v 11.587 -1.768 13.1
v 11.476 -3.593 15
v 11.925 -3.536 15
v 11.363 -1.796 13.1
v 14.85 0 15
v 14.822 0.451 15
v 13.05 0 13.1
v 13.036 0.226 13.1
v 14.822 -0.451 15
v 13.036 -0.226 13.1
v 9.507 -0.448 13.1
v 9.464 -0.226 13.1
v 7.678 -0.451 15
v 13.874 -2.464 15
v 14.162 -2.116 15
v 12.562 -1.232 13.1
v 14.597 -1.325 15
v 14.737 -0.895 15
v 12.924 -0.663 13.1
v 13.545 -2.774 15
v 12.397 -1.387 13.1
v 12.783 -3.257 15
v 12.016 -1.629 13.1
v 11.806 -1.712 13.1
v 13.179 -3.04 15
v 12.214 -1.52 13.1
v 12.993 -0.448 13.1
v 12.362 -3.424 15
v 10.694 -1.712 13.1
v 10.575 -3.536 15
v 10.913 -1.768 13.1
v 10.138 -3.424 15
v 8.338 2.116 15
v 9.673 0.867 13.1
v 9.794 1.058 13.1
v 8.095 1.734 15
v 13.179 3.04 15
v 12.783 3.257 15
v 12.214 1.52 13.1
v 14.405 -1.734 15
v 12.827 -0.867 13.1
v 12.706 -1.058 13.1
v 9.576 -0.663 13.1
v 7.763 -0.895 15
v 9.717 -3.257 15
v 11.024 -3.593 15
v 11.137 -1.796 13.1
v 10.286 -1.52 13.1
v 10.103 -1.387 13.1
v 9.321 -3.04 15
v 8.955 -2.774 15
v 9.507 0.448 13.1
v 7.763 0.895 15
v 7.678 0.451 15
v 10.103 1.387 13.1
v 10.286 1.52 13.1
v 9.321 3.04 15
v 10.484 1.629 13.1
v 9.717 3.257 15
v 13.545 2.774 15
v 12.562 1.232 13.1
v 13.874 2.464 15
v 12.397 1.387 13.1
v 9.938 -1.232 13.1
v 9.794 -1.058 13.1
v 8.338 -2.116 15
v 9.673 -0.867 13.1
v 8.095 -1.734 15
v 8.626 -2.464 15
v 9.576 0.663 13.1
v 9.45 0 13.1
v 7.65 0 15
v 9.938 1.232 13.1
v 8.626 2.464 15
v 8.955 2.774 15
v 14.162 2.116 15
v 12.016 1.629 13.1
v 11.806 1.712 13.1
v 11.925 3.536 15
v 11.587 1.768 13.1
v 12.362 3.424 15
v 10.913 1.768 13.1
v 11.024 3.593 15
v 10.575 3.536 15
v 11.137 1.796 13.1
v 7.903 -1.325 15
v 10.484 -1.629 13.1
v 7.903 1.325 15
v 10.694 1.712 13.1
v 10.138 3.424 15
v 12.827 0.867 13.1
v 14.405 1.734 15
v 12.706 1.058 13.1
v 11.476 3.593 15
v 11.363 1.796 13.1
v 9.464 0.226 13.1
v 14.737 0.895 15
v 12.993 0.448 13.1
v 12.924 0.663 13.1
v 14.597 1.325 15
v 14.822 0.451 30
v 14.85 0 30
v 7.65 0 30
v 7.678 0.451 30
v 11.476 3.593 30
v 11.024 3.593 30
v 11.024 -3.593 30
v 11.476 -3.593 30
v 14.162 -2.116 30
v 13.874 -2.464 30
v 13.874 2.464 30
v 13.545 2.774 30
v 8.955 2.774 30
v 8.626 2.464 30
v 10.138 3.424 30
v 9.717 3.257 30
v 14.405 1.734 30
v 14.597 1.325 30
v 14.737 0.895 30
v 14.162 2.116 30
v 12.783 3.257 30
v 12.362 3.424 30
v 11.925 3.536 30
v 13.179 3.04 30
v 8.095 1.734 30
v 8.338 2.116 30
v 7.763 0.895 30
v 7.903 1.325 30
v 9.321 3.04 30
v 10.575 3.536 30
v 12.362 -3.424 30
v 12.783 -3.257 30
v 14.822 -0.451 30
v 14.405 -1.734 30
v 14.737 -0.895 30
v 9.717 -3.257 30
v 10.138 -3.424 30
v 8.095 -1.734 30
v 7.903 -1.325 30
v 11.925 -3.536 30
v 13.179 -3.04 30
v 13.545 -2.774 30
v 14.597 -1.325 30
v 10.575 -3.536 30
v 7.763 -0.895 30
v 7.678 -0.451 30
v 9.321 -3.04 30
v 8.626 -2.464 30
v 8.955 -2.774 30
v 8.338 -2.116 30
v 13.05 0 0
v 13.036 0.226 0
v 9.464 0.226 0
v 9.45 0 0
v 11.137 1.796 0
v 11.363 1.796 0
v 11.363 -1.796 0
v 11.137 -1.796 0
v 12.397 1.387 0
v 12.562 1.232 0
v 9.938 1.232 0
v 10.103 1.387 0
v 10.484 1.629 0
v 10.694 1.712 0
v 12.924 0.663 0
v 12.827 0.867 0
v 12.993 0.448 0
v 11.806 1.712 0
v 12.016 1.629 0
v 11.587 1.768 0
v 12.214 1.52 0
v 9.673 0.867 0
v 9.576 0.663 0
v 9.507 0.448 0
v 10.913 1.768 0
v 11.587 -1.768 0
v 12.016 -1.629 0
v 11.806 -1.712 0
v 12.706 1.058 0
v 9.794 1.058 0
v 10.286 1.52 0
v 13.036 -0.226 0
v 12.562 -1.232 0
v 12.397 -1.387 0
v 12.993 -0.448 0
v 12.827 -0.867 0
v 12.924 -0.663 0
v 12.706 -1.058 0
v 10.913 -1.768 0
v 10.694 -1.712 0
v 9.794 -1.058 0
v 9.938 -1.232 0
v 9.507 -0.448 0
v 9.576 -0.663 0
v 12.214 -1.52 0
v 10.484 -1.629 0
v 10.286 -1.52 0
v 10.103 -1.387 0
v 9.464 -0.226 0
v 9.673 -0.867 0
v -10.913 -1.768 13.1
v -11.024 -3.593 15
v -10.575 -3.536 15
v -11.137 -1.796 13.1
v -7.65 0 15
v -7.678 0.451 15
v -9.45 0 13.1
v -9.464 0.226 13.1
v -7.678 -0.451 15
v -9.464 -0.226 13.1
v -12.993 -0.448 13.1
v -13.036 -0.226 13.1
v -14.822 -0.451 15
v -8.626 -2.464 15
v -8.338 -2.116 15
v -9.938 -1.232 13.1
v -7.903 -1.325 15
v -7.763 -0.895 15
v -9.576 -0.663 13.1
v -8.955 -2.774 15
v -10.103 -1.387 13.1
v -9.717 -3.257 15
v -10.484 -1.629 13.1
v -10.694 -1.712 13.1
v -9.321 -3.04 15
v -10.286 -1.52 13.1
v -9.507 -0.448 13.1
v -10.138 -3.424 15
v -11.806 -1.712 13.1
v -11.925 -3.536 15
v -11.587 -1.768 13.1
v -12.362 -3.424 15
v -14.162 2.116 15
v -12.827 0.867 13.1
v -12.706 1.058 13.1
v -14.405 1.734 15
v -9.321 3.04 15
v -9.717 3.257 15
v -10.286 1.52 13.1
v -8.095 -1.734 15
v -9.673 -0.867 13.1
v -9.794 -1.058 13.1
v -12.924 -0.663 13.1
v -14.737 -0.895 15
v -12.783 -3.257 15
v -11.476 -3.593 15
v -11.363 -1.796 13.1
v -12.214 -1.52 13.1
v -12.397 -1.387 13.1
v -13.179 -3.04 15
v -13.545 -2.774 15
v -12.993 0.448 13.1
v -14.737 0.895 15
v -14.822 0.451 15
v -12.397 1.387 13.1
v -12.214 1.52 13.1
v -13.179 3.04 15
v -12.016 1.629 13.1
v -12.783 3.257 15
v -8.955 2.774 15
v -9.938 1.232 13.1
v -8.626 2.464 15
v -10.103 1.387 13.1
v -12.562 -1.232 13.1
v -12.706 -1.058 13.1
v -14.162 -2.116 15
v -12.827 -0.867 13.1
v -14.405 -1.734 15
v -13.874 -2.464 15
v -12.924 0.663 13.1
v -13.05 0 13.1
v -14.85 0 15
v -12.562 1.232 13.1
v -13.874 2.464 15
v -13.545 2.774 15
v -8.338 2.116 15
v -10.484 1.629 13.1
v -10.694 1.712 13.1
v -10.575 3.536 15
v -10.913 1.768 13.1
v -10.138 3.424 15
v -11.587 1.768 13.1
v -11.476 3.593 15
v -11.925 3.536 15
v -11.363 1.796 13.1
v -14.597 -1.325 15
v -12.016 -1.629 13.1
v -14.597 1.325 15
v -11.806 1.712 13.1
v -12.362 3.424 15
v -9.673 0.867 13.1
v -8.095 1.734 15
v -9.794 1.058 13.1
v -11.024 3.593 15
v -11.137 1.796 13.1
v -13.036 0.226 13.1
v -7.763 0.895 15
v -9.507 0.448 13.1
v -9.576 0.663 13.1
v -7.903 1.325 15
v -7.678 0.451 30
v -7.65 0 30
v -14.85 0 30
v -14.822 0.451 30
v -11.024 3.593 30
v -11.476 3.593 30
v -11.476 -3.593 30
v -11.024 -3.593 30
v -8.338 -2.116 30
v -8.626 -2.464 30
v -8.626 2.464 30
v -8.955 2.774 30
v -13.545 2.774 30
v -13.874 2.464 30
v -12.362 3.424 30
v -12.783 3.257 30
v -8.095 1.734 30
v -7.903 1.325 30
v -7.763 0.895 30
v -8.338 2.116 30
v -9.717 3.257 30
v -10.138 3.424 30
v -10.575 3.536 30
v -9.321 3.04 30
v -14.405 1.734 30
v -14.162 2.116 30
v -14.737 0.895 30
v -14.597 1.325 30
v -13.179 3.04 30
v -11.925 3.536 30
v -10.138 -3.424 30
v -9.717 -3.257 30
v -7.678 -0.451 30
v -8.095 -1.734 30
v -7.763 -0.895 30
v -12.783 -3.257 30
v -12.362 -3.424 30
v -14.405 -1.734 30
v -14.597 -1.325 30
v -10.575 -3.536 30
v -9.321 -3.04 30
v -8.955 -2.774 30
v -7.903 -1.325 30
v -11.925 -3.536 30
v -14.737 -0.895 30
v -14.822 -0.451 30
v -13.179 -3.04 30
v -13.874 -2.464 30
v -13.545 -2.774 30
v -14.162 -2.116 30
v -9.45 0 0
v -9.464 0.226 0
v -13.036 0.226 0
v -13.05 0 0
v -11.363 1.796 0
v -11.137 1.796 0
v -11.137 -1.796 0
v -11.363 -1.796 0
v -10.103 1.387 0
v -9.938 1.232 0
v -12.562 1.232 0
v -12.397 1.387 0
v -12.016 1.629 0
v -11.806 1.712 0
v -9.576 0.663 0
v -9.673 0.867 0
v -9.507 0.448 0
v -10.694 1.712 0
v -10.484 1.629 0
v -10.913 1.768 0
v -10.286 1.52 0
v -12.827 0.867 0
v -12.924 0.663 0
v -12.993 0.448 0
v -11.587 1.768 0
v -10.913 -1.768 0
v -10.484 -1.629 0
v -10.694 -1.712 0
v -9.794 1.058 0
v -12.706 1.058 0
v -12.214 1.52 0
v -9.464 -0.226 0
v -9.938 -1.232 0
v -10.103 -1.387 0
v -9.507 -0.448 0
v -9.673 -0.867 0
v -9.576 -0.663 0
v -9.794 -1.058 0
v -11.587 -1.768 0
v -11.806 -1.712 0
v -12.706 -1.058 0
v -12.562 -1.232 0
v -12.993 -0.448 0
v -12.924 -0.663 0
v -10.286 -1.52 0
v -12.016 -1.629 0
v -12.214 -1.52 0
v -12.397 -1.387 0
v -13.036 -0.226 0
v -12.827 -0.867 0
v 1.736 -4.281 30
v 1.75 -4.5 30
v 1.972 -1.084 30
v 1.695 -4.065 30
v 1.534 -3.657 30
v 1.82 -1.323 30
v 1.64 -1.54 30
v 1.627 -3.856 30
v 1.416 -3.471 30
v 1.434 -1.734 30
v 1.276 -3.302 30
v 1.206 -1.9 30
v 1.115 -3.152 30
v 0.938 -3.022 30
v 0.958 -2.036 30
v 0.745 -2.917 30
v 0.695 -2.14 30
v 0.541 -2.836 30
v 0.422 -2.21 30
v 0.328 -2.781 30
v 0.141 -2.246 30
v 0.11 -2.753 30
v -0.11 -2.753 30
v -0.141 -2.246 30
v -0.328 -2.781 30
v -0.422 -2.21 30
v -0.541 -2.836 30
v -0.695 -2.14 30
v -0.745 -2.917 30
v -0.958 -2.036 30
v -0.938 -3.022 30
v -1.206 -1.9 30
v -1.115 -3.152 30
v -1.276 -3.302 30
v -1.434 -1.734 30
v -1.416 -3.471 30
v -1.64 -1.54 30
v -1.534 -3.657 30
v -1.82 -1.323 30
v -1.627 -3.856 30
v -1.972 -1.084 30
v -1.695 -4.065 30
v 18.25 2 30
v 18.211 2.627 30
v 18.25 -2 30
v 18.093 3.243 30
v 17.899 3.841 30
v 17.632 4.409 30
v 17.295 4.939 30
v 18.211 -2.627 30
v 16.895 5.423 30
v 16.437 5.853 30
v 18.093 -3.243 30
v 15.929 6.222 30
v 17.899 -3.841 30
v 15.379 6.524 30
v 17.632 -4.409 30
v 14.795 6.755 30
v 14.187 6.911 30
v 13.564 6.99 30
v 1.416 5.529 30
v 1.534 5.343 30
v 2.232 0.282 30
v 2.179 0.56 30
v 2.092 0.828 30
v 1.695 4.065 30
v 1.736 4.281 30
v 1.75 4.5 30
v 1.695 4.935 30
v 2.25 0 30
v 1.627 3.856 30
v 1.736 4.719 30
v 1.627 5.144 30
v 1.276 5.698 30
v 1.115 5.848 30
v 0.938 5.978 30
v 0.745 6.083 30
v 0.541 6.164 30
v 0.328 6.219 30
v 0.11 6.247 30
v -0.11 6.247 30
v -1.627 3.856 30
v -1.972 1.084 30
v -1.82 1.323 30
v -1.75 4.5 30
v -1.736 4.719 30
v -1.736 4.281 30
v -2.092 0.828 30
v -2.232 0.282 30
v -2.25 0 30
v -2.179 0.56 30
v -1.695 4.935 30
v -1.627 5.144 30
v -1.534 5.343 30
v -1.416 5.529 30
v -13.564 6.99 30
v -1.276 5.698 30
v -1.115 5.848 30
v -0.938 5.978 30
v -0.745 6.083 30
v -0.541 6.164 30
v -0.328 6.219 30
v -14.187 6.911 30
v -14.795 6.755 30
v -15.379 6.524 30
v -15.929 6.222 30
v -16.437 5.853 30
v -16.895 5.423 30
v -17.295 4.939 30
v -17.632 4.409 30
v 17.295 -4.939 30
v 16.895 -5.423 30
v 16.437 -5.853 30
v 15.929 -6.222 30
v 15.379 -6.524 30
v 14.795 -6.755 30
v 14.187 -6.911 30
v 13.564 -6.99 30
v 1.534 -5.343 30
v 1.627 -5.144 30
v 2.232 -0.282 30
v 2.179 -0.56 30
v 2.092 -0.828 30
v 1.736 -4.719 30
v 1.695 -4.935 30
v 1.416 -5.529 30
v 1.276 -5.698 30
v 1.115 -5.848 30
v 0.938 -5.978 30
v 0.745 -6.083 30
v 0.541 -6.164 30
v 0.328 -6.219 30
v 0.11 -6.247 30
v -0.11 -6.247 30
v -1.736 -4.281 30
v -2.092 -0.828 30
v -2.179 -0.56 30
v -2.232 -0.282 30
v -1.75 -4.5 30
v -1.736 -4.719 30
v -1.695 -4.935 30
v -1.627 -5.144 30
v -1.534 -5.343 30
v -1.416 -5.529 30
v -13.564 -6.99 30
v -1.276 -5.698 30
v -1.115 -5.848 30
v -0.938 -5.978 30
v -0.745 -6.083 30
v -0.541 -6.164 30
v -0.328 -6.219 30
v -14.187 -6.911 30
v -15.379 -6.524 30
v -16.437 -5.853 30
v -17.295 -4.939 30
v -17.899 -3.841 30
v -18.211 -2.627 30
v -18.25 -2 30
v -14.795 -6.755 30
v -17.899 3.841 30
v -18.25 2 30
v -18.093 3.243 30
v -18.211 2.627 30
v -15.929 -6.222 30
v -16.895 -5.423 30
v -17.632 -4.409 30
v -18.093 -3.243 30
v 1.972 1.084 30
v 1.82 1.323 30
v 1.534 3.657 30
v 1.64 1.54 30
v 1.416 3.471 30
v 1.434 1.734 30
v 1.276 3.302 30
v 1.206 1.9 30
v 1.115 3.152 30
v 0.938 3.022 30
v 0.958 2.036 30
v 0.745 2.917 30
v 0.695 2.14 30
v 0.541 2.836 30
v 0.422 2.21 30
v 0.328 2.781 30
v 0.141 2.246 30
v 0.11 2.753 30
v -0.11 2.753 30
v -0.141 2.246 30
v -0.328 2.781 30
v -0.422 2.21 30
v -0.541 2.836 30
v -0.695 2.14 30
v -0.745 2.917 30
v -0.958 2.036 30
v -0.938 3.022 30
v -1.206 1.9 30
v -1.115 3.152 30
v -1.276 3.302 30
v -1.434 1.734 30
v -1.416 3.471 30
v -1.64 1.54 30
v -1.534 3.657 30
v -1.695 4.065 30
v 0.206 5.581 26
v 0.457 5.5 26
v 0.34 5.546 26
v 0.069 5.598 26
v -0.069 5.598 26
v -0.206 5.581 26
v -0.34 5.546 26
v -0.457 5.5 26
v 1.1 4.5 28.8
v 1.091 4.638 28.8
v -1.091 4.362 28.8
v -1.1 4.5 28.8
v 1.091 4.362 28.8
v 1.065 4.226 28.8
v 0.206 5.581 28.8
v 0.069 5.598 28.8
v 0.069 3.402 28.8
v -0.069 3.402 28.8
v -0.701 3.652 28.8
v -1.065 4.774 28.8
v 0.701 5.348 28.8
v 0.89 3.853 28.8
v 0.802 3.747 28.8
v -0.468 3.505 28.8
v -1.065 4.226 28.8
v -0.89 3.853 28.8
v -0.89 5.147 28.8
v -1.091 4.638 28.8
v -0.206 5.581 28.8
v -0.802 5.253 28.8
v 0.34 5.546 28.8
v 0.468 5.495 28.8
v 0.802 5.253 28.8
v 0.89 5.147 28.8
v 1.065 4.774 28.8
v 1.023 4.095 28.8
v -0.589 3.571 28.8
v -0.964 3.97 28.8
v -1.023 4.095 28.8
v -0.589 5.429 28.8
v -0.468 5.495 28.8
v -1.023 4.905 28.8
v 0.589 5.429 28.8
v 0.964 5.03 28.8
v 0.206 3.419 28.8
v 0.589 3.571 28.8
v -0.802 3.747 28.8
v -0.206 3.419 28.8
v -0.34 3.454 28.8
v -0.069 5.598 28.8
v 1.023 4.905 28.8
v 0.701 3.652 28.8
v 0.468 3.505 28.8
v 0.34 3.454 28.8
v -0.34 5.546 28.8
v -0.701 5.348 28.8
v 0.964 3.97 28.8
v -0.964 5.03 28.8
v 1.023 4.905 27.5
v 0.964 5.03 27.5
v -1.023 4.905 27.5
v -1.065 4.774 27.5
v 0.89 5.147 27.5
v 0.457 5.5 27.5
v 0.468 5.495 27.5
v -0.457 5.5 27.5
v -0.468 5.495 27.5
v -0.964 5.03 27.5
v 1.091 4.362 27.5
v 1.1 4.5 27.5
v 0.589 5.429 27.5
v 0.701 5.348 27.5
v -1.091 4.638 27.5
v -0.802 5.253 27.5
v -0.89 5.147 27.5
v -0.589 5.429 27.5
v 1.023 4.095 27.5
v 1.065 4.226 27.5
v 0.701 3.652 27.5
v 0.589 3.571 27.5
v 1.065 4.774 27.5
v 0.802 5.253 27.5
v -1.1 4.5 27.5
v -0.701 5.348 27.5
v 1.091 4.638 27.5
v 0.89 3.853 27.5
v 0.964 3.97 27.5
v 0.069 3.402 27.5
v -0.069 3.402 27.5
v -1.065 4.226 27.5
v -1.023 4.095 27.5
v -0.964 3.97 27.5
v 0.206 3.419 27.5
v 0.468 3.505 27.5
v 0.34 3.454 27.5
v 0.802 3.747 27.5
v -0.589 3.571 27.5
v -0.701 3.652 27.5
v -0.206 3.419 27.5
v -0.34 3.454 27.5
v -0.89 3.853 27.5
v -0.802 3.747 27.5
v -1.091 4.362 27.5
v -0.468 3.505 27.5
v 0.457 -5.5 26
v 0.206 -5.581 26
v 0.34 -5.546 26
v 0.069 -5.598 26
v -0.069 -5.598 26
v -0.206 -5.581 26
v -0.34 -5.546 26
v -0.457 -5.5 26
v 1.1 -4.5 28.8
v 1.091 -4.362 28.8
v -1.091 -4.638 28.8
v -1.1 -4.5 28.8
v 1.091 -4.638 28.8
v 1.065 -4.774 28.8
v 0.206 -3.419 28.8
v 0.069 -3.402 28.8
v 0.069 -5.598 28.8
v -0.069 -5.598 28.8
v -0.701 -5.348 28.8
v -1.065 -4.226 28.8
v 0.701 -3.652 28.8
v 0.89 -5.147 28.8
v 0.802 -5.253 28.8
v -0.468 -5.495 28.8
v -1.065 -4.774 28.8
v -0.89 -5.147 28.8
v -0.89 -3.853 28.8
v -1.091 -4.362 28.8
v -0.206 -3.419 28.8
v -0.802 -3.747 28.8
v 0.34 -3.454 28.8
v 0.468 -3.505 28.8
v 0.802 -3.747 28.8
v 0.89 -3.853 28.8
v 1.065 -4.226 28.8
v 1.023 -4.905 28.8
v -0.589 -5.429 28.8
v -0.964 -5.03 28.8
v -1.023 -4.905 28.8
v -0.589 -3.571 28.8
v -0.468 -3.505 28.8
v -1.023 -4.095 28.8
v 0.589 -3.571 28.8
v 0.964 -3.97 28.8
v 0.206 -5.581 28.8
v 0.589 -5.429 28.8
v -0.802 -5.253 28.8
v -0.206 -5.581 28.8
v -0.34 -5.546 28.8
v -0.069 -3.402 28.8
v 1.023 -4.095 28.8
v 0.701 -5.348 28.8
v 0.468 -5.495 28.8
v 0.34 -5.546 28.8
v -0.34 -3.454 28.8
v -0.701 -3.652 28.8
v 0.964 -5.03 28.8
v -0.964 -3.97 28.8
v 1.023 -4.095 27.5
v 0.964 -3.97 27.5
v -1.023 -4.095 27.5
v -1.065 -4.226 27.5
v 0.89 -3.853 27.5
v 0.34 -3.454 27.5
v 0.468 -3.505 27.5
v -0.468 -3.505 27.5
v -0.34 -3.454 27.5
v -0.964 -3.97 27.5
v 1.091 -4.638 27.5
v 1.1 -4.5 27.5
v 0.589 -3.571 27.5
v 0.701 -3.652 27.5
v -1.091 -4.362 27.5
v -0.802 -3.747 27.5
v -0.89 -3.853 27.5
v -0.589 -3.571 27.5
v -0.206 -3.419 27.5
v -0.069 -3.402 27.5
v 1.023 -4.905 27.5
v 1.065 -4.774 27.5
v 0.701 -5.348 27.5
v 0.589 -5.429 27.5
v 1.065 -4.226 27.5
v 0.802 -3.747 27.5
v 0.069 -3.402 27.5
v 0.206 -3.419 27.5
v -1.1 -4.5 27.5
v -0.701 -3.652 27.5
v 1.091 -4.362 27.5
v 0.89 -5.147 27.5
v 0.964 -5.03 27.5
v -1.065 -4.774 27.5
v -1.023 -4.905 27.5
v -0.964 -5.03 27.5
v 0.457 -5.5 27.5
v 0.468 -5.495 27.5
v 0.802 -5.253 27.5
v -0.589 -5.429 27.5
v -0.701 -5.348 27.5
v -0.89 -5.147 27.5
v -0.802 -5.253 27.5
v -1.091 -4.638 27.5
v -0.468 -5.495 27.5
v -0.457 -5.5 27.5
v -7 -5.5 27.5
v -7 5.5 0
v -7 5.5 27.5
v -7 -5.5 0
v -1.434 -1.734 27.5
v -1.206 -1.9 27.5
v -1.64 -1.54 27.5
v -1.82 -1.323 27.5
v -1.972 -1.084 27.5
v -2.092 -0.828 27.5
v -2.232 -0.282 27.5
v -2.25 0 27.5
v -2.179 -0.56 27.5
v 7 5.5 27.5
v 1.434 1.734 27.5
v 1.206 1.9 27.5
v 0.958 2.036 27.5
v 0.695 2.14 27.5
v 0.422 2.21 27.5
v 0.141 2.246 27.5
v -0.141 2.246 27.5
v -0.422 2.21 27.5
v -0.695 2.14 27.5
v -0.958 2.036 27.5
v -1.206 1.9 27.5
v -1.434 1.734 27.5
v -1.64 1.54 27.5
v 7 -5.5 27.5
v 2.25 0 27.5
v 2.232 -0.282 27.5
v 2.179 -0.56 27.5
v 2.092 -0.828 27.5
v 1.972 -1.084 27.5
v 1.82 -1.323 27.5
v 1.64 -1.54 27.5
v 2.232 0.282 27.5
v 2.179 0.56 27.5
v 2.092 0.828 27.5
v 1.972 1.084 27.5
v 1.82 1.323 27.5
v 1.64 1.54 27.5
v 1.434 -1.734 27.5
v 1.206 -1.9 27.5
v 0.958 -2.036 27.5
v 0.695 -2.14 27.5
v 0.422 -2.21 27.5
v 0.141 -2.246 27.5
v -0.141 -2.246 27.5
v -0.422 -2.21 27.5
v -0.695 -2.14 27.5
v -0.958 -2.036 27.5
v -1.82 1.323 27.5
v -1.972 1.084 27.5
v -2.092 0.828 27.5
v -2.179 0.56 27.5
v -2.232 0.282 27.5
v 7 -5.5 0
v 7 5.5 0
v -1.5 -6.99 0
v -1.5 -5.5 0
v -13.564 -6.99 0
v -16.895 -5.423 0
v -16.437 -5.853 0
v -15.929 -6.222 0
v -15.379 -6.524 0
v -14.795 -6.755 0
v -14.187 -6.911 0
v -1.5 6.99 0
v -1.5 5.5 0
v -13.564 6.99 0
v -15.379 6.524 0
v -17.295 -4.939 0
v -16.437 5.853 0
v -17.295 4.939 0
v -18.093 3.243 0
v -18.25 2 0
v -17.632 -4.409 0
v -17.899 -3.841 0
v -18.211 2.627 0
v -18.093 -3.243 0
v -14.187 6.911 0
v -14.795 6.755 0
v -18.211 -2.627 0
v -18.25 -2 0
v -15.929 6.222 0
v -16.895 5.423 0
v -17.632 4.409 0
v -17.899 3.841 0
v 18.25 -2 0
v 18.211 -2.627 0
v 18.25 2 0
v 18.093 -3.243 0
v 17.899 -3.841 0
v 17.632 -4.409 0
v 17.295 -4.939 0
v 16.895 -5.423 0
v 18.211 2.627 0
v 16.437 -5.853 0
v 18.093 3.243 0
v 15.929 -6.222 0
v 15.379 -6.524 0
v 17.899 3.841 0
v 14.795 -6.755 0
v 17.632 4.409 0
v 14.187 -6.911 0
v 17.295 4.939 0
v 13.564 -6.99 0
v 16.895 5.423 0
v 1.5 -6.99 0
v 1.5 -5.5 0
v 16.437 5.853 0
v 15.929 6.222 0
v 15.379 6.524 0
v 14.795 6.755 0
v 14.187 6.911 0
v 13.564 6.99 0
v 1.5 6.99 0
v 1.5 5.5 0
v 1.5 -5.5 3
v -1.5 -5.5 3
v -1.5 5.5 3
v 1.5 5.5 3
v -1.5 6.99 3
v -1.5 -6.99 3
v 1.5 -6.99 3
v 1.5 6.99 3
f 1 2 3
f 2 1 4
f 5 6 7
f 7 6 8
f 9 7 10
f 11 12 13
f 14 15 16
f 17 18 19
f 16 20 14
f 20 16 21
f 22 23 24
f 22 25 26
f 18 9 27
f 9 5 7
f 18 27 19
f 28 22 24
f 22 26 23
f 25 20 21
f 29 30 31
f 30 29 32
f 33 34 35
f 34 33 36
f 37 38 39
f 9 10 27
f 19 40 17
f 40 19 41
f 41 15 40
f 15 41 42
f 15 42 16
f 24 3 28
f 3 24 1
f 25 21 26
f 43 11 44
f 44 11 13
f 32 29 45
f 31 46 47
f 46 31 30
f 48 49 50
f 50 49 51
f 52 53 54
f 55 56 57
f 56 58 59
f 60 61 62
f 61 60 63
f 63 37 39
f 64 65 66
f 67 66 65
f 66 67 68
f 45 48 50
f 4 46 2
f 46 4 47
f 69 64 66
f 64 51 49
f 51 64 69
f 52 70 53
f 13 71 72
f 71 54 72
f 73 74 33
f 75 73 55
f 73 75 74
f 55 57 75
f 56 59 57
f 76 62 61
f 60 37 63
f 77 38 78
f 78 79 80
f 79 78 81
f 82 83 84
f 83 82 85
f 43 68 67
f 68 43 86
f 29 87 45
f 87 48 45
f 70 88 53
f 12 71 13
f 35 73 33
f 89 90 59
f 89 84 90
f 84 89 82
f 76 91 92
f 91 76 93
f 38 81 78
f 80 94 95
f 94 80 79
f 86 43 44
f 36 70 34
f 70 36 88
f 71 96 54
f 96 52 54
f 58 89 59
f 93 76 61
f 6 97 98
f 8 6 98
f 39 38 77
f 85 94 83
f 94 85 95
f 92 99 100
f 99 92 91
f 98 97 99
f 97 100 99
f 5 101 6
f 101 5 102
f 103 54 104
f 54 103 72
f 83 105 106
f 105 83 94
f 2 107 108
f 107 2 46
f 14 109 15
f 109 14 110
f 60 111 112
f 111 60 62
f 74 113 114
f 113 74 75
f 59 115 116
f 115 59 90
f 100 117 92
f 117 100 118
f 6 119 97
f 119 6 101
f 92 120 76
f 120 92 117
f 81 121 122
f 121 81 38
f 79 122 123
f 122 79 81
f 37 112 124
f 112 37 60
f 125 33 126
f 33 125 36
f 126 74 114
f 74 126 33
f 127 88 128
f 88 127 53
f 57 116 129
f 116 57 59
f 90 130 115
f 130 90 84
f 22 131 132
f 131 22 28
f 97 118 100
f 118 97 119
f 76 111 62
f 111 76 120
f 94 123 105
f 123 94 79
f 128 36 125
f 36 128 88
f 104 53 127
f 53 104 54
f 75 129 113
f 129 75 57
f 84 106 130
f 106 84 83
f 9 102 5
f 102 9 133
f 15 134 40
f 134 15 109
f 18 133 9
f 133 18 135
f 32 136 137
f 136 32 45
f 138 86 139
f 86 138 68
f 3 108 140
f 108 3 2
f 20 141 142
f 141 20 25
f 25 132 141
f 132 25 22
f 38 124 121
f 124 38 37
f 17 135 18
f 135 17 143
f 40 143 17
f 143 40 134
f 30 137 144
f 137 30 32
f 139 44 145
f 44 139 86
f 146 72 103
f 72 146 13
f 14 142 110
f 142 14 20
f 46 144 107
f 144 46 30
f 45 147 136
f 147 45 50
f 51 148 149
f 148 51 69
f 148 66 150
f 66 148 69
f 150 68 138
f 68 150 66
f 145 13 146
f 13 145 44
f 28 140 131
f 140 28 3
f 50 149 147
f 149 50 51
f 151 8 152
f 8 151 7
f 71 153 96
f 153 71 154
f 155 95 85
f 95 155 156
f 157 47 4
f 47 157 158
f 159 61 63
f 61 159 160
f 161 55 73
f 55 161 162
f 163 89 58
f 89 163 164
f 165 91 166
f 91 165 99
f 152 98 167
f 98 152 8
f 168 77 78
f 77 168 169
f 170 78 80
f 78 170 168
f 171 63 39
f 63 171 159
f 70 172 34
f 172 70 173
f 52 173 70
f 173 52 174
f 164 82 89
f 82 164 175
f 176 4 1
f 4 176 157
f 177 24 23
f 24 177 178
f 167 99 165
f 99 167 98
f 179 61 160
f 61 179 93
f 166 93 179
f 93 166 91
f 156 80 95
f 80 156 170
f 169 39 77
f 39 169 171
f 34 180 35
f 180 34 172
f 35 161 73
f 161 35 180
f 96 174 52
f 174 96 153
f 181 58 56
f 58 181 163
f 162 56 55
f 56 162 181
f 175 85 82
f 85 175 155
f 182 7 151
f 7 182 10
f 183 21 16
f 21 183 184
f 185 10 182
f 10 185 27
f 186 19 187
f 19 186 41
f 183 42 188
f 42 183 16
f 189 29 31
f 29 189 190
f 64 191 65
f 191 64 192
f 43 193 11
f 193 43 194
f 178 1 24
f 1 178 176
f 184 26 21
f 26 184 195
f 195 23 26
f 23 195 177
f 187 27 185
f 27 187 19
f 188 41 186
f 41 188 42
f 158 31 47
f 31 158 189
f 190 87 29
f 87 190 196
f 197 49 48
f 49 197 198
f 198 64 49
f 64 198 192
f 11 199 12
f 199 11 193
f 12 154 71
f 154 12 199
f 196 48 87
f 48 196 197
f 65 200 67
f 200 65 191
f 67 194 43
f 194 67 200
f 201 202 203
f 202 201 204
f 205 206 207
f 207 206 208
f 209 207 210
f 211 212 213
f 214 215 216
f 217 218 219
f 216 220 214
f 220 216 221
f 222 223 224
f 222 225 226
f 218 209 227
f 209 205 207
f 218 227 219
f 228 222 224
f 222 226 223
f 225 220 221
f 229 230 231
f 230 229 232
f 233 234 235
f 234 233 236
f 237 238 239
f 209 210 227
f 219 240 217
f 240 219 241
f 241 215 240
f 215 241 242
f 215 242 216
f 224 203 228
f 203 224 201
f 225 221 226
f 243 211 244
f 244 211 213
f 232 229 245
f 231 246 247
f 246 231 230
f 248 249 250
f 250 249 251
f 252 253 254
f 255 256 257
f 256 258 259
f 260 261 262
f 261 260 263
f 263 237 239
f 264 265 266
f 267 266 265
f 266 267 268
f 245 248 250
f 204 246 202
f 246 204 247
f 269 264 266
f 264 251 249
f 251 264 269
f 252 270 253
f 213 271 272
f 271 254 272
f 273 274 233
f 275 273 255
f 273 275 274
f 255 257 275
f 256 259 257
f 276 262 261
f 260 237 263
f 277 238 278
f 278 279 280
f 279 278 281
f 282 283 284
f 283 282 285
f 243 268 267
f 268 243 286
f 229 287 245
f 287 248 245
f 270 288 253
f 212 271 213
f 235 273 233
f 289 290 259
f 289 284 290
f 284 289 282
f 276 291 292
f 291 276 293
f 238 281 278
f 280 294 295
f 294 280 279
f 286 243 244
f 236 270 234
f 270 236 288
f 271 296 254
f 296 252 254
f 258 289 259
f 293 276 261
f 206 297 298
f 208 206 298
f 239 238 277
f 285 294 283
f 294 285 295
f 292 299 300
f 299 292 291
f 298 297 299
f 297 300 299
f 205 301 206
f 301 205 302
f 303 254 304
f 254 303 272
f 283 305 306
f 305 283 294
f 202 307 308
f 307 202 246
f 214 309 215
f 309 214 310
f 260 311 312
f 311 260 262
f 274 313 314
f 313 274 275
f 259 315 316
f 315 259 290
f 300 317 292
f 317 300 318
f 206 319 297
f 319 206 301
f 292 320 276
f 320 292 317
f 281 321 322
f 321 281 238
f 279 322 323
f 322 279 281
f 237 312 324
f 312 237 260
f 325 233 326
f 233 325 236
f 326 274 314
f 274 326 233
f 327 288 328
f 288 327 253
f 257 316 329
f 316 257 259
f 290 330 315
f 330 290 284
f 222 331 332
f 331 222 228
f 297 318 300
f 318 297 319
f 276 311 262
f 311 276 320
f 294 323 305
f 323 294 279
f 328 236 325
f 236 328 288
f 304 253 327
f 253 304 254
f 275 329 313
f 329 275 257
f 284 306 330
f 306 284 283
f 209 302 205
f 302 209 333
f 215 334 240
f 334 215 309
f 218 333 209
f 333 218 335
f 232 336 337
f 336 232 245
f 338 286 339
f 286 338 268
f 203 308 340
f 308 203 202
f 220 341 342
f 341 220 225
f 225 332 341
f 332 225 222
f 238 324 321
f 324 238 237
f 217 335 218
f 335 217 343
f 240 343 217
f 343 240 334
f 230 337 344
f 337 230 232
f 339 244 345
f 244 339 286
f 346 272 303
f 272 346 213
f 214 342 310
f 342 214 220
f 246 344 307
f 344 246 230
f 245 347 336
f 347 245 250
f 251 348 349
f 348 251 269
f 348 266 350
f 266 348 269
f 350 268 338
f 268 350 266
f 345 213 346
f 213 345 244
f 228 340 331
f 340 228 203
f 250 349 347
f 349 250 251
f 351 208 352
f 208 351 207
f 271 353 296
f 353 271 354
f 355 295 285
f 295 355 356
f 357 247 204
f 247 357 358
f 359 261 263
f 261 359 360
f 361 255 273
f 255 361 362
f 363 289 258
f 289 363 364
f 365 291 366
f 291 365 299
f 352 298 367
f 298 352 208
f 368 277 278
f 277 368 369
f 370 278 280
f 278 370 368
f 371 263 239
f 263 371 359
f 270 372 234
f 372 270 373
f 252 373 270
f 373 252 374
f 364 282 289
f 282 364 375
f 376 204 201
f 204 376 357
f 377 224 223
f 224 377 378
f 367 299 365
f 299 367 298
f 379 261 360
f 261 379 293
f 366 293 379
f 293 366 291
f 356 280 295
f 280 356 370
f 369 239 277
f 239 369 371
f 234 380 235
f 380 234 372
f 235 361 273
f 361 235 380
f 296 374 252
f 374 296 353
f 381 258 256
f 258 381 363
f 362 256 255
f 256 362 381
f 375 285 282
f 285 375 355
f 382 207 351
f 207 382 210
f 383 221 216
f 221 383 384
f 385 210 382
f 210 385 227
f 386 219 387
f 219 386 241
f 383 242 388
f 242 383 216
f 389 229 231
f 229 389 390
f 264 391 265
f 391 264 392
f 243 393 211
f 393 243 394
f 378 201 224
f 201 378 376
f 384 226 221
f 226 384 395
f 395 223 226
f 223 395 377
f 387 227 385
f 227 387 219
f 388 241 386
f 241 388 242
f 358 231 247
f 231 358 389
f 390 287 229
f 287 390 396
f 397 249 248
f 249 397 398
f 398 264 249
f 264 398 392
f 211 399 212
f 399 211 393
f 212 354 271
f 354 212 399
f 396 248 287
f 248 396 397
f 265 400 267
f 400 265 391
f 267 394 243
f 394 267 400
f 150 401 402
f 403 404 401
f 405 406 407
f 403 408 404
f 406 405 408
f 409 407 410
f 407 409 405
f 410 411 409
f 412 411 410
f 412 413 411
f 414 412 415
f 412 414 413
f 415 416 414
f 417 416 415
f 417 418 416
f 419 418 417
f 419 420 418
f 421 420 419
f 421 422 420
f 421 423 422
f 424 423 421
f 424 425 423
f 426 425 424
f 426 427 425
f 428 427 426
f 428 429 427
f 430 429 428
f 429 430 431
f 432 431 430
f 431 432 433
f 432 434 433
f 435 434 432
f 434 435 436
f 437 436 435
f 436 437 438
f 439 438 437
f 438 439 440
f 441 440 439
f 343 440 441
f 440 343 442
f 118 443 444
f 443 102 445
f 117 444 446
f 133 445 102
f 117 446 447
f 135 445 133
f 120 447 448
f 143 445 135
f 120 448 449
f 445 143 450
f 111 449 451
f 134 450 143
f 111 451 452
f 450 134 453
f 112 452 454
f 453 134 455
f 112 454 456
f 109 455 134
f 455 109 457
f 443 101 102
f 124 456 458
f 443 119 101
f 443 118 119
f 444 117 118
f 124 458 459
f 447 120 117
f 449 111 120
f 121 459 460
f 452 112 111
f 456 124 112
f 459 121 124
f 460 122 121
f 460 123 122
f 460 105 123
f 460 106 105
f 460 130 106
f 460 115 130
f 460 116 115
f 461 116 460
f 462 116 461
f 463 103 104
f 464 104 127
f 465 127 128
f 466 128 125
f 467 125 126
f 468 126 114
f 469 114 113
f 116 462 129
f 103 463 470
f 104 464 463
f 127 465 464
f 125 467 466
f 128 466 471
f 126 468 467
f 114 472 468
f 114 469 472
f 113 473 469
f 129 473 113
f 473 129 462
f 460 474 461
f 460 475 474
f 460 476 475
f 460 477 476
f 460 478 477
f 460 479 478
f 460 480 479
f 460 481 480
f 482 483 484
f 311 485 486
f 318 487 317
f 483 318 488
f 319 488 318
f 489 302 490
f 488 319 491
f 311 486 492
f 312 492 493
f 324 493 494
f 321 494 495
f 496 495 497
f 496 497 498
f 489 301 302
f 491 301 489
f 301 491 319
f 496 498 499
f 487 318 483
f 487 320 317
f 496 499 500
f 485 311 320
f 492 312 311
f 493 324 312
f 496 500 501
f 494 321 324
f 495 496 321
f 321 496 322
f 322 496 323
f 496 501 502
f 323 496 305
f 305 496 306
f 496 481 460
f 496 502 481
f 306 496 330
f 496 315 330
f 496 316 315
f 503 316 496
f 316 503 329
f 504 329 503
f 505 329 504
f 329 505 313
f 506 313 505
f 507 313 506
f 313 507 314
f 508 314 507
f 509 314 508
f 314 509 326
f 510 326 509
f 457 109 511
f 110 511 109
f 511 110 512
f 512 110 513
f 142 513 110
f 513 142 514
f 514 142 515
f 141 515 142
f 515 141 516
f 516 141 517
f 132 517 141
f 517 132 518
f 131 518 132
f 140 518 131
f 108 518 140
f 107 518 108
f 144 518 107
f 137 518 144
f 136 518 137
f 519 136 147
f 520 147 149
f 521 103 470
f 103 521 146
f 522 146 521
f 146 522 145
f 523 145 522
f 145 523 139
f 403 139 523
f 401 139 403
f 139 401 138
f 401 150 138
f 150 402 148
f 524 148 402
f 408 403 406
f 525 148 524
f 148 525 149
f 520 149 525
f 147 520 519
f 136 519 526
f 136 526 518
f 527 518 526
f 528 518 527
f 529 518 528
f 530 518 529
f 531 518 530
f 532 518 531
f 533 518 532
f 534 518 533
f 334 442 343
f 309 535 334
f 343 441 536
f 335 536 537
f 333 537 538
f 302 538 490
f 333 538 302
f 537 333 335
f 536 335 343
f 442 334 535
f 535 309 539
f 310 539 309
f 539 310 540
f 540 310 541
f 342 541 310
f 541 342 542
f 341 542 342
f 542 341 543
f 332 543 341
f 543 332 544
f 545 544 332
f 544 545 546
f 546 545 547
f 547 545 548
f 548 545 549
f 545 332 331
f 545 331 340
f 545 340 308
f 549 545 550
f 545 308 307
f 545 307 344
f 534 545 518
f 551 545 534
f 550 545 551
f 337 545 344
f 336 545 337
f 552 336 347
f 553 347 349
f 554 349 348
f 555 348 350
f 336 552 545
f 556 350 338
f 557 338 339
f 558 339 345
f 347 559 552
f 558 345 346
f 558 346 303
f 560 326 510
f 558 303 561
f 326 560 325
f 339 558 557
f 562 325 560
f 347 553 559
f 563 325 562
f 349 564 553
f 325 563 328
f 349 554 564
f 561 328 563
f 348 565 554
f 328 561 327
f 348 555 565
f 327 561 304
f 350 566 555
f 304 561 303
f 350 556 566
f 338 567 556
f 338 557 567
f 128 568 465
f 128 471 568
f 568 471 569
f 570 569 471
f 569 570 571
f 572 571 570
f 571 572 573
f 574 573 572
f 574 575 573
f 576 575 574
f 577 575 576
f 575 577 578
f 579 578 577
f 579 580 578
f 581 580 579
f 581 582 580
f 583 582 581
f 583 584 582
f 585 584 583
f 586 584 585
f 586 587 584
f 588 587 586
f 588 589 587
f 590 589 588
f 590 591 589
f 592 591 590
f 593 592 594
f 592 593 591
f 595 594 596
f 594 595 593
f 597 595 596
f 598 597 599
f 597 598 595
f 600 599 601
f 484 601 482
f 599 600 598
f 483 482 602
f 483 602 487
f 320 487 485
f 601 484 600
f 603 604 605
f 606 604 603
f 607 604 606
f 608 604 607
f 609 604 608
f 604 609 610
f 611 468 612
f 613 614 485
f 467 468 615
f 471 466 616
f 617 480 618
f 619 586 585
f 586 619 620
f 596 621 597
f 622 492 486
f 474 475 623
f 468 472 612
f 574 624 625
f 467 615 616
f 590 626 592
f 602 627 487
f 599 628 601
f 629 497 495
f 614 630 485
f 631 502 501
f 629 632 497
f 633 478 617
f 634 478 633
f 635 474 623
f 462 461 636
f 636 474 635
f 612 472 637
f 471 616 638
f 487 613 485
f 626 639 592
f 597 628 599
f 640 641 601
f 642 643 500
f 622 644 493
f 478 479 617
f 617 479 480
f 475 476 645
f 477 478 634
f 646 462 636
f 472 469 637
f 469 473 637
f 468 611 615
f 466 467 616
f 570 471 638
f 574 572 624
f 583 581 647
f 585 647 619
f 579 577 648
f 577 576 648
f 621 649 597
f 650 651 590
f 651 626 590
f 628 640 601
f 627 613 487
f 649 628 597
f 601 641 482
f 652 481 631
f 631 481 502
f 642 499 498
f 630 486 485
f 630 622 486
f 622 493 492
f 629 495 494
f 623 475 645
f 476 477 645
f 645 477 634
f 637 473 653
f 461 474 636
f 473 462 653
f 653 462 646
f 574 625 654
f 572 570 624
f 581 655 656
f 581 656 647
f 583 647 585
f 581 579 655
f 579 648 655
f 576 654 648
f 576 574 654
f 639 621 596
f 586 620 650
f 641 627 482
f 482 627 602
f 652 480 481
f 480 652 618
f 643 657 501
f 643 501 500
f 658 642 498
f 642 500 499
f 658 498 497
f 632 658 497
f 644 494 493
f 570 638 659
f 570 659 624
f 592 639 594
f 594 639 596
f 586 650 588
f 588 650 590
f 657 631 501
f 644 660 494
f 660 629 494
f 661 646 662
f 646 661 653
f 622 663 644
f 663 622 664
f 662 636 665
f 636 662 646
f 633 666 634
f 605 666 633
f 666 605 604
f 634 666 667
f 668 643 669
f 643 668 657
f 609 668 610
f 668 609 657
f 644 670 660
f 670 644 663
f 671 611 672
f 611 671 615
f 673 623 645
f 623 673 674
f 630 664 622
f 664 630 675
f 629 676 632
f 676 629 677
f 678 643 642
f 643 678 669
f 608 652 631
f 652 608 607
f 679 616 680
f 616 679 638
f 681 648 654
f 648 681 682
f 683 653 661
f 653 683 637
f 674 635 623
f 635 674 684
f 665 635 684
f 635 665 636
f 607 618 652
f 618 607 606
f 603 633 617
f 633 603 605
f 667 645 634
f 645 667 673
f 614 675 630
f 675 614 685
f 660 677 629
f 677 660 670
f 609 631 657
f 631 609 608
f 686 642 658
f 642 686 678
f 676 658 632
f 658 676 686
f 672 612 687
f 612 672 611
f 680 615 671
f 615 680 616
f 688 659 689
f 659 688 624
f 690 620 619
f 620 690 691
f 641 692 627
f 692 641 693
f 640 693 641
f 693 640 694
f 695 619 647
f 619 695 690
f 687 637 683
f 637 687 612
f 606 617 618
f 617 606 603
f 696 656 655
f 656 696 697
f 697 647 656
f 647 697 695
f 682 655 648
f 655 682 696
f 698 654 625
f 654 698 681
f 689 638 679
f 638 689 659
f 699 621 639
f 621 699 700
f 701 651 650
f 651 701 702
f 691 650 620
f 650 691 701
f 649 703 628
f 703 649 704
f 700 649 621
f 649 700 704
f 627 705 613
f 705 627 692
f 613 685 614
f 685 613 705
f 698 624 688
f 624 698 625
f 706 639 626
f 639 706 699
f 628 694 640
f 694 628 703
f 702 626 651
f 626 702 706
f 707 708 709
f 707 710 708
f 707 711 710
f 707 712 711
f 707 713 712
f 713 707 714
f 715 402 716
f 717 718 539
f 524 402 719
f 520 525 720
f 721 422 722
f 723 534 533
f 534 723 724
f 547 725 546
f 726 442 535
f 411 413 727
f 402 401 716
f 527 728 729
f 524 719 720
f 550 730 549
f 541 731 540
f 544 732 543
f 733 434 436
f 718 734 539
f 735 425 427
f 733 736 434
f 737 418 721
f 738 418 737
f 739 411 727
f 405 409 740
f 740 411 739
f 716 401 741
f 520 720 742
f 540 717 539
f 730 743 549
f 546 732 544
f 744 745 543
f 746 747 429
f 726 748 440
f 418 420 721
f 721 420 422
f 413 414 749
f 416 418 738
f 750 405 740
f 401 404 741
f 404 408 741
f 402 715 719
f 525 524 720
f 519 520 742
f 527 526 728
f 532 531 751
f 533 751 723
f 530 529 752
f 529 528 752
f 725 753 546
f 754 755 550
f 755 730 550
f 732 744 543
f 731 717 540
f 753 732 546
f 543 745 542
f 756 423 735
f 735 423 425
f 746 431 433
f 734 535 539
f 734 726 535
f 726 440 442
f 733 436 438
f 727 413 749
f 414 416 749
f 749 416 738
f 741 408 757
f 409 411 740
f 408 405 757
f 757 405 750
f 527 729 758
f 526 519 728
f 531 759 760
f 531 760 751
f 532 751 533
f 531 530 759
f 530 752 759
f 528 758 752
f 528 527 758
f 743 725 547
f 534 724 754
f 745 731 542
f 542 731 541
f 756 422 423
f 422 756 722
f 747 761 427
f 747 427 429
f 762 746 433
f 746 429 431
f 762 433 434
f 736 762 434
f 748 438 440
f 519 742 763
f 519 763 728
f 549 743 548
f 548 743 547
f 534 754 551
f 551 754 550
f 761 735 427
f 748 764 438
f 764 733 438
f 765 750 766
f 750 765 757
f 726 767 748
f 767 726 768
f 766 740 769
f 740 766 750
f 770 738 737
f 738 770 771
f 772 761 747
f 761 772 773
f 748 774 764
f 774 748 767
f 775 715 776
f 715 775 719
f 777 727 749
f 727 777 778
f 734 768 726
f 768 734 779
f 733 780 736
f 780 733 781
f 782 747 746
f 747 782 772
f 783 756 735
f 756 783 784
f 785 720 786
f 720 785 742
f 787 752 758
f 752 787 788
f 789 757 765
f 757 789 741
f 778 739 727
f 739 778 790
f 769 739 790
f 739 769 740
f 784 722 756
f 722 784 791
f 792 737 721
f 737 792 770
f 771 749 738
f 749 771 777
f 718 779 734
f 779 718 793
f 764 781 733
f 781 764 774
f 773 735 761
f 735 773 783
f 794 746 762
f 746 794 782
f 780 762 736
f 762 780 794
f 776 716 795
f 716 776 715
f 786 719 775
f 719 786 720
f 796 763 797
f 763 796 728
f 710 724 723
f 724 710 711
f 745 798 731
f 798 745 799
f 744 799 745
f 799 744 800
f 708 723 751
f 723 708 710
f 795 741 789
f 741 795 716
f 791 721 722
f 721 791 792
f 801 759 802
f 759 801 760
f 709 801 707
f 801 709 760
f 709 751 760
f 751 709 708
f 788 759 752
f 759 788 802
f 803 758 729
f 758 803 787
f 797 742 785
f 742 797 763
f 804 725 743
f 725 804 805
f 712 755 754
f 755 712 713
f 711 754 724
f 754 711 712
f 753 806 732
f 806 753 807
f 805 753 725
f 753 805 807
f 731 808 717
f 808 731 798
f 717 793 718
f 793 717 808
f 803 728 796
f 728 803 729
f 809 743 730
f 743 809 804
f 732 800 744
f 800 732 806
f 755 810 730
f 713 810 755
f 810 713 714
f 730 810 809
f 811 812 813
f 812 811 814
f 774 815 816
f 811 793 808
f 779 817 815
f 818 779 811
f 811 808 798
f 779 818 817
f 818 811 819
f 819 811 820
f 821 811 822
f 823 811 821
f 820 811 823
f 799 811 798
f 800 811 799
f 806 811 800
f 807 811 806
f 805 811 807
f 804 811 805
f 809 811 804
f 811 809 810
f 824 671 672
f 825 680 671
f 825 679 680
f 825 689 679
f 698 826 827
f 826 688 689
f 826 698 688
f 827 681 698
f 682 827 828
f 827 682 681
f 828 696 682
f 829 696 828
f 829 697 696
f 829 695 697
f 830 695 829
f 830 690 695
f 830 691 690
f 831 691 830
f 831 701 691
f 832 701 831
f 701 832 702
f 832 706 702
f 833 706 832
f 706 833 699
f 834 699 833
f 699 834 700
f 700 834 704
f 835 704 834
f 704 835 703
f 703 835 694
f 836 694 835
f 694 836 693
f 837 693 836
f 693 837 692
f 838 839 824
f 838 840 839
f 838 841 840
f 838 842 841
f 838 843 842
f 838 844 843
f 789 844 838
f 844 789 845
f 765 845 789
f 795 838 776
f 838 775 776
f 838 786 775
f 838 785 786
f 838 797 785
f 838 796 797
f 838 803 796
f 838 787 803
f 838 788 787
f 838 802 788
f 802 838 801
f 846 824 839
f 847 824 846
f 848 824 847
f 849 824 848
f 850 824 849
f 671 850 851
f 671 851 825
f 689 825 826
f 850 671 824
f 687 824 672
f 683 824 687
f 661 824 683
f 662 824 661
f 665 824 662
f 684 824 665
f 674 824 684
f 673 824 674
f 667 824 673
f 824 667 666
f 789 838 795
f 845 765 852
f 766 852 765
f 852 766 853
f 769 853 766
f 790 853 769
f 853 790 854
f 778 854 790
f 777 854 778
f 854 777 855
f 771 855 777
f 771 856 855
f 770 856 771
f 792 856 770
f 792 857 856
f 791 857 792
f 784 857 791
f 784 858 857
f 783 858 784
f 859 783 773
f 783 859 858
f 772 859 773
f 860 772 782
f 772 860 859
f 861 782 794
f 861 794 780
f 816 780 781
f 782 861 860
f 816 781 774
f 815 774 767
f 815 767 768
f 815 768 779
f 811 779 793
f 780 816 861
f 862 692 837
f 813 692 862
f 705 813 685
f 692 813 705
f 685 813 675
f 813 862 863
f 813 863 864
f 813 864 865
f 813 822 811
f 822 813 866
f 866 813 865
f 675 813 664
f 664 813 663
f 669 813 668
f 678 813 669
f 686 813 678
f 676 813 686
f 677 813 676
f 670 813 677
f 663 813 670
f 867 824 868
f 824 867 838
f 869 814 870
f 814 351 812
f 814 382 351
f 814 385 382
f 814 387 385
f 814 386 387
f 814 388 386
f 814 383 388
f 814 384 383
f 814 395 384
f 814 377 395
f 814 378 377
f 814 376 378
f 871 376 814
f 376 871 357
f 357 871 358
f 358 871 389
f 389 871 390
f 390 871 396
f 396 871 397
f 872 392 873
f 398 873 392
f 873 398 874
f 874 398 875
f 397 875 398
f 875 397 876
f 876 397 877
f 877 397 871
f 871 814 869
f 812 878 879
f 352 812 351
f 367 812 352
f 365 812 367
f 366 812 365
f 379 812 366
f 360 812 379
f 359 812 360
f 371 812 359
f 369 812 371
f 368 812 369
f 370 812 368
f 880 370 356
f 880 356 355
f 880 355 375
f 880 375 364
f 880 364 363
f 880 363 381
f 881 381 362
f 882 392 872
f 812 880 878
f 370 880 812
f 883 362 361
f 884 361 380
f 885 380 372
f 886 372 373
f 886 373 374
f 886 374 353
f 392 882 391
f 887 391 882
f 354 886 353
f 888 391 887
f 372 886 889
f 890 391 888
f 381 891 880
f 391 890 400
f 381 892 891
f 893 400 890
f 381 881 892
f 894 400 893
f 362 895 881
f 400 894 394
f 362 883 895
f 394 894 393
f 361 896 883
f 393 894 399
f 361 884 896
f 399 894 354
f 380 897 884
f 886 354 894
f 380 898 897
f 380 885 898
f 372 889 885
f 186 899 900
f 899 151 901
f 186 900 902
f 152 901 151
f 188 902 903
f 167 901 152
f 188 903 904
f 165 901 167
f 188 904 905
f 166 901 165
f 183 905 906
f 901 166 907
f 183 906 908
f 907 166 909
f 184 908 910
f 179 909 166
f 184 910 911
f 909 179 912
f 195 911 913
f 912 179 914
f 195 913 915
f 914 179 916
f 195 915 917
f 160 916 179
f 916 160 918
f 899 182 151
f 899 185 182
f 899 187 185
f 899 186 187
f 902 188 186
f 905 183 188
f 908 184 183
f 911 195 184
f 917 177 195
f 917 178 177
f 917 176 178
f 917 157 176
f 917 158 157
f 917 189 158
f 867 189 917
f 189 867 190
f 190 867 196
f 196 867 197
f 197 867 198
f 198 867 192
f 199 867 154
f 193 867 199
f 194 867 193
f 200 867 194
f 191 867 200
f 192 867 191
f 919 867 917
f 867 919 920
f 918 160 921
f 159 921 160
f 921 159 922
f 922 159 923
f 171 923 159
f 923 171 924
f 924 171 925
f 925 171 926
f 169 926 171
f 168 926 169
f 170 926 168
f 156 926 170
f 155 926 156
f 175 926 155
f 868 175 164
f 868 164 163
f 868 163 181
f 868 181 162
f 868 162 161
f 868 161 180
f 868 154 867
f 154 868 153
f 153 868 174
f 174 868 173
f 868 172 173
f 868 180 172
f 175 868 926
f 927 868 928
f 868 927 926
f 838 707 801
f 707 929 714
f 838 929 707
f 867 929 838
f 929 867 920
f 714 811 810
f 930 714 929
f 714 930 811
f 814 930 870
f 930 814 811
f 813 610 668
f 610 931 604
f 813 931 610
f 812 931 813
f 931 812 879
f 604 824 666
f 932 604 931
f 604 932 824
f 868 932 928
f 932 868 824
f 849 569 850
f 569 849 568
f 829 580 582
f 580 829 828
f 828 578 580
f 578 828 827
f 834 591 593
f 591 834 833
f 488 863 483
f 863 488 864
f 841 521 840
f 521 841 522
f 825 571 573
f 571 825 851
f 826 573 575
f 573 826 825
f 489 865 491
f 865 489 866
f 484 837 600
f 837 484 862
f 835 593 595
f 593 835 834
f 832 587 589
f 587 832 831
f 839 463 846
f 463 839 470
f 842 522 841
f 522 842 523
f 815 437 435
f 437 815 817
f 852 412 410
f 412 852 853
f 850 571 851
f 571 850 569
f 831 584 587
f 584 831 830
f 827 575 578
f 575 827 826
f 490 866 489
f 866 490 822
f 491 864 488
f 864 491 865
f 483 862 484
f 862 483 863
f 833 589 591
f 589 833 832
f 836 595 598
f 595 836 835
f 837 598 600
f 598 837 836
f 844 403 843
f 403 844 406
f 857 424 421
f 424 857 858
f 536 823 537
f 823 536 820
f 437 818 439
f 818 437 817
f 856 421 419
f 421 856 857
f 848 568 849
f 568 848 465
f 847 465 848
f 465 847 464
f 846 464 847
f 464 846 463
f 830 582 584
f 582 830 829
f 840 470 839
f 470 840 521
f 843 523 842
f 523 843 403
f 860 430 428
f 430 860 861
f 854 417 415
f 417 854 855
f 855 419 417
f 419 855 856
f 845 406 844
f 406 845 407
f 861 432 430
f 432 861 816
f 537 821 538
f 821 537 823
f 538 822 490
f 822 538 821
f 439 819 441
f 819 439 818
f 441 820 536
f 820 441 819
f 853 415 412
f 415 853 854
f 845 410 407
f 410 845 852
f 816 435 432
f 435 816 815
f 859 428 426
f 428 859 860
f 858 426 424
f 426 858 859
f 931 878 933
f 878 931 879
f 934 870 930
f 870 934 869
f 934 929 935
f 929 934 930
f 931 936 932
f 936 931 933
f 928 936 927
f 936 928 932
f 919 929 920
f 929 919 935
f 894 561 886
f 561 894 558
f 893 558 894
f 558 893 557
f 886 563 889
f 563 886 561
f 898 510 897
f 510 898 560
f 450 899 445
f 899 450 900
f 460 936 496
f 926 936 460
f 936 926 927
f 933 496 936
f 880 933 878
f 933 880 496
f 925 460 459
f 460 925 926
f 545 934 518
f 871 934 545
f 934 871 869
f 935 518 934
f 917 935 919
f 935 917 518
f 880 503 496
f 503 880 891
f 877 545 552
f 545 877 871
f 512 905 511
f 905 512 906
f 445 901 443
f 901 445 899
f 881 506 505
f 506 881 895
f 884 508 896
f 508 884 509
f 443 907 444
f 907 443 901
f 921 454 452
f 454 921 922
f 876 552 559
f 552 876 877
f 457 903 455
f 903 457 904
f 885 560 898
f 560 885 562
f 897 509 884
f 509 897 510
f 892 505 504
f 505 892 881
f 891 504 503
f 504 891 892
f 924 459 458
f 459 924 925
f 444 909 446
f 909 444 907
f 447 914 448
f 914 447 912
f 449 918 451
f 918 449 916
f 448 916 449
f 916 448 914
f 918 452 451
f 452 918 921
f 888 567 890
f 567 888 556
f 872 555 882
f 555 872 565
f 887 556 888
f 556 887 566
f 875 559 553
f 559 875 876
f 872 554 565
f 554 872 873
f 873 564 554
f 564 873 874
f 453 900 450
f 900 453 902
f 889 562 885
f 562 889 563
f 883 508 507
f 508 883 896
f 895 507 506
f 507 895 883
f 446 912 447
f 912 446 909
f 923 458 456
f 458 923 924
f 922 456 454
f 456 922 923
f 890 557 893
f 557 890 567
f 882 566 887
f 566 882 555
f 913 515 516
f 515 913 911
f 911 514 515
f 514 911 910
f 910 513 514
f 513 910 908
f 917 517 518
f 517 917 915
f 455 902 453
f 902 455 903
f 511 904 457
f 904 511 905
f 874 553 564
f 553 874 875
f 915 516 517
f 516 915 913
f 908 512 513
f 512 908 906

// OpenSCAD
$fn = 50;


difference() {
	union() {
		hull() {
			translate(v = [-13.2500000000, 2.0000000000, 0]) {
				cylinder(h = 30, r = 5);
			}
			translate(v = [13.2500000000, 2.0000000000, 0]) {
				cylinder(h = 30, r = 5);
			}
			translate(v = [-13.2500000000, -2.0000000000, 0]) {
				cylinder(h = 30, r = 5);
			}
			translate(v = [13.2500000000, -2.0000000000, 0]) {
				cylinder(h = 30, r = 5);
			}
		}
	}
	union() {
		translate(v = [11.2500000000, 0, 15.0000000000]) {
			rotate(a = [0, 0, 0]) {
				difference() {
					union() {
						#translate(v = [0, 0, -30.0000000000]) {
							cylinder(h = 30, r = 1.5000000000);
						}
						#translate(v = [0, 0, -1.9000000000]) {
							cylinder(h = 1.9000000000, r1 = 1.8000000000, r2 = 3.6000000000);
						}
						#cylinder(h = 50, r = 3.6000000000);
						#translate(v = [0, 0, -30.0000000000]) {
							cylinder(h = 30, r = 1.8000000000);
						}
						#translate(v = [0, 0, -30.0000000000]) {
							cylinder(h = 30, r = 1.5000000000);
						}
					}
					union();
				}
			}
		}
		translate(v = [-11.2500000000, 0, 15.0000000000]) {
			rotate(a = [0, 0, 0]) {
				difference() {
					union() {
						#translate(v = [0, 0, -30.0000000000]) {
							cylinder(h = 30, r = 1.5000000000);
						}
						#translate(v = [0, 0, -1.9000000000]) {
							cylinder(h = 1.9000000000, r1 = 1.8000000000, r2 = 3.6000000000);
						}
						#cylinder(h = 50, r = 3.6000000000);
						#translate(v = [0, 0, -30.0000000000]) {
							cylinder(h = 30, r = 1.8000000000);
						}
						#translate(v = [0, 0, -30.0000000000]) {
							cylinder(h = 30, r = 1.5000000000);
						}
					}
					union();
				}
			}
		}
		translate(v = [0, 4.5000000000, 30]) {
			rotate(a = [0, 0, 0]) {
				difference() {
					union() {
						translate(v = [0, 0, -4.0000000000]) {
							cylinder(h = 4, r = 0.8500000000);
						}
						translate(v = [0, 0, -1.2000000000]) {
							cylinder(h = 1.2000000000, r1 = 1.1000000000, r2 = 1.7500000000);
						}
						translate(v = [0, 0, -4.0000000000]) {
							cylinder(h = 4, r = 1.1000000000);
						}
						translate(v = [0, 0, -4.0000000000]) {
							cylinder(h = 4, r = 0.8500000000);
						}
					}
					union();
				}
			}
		}
		translate(v = [0, -4.5000000000, 30]) {
			rotate(a = [0, 0, 0]) {
				difference() {
					union() {
						translate(v = [0, 0, -4.0000000000]) {
							cylinder(h = 4, r = 0.8500000000);
						}
						translate(v = [0, 0, -1.2000000000]) {
							cylinder(h = 1.2000000000, r1 = 1.1000000000, r2 = 1.7500000000);
						}
						translate(v = [0, 0, -4.0000000000]) {
							cylinder(h = 4, r = 1.1000000000);
						}
						translate(v = [0, 0, -4.0000000000]) {
							cylinder(h = 4, r = 0.8500000000);
						}
					}
					union();
				}
			}
		}
		#translate(v = [-7.0000000000, -5.5000000000, 0]) {
			cube(size = [14, 11, 27.5000000000]);
		}
		cylinder(h = 30, r = 2.2500000000);
		translate(v = [-1.5000000000, -18.7500000000, 0]) {
			cube(size = [3, 37.5000000000, 3]);
		}
	}
}
